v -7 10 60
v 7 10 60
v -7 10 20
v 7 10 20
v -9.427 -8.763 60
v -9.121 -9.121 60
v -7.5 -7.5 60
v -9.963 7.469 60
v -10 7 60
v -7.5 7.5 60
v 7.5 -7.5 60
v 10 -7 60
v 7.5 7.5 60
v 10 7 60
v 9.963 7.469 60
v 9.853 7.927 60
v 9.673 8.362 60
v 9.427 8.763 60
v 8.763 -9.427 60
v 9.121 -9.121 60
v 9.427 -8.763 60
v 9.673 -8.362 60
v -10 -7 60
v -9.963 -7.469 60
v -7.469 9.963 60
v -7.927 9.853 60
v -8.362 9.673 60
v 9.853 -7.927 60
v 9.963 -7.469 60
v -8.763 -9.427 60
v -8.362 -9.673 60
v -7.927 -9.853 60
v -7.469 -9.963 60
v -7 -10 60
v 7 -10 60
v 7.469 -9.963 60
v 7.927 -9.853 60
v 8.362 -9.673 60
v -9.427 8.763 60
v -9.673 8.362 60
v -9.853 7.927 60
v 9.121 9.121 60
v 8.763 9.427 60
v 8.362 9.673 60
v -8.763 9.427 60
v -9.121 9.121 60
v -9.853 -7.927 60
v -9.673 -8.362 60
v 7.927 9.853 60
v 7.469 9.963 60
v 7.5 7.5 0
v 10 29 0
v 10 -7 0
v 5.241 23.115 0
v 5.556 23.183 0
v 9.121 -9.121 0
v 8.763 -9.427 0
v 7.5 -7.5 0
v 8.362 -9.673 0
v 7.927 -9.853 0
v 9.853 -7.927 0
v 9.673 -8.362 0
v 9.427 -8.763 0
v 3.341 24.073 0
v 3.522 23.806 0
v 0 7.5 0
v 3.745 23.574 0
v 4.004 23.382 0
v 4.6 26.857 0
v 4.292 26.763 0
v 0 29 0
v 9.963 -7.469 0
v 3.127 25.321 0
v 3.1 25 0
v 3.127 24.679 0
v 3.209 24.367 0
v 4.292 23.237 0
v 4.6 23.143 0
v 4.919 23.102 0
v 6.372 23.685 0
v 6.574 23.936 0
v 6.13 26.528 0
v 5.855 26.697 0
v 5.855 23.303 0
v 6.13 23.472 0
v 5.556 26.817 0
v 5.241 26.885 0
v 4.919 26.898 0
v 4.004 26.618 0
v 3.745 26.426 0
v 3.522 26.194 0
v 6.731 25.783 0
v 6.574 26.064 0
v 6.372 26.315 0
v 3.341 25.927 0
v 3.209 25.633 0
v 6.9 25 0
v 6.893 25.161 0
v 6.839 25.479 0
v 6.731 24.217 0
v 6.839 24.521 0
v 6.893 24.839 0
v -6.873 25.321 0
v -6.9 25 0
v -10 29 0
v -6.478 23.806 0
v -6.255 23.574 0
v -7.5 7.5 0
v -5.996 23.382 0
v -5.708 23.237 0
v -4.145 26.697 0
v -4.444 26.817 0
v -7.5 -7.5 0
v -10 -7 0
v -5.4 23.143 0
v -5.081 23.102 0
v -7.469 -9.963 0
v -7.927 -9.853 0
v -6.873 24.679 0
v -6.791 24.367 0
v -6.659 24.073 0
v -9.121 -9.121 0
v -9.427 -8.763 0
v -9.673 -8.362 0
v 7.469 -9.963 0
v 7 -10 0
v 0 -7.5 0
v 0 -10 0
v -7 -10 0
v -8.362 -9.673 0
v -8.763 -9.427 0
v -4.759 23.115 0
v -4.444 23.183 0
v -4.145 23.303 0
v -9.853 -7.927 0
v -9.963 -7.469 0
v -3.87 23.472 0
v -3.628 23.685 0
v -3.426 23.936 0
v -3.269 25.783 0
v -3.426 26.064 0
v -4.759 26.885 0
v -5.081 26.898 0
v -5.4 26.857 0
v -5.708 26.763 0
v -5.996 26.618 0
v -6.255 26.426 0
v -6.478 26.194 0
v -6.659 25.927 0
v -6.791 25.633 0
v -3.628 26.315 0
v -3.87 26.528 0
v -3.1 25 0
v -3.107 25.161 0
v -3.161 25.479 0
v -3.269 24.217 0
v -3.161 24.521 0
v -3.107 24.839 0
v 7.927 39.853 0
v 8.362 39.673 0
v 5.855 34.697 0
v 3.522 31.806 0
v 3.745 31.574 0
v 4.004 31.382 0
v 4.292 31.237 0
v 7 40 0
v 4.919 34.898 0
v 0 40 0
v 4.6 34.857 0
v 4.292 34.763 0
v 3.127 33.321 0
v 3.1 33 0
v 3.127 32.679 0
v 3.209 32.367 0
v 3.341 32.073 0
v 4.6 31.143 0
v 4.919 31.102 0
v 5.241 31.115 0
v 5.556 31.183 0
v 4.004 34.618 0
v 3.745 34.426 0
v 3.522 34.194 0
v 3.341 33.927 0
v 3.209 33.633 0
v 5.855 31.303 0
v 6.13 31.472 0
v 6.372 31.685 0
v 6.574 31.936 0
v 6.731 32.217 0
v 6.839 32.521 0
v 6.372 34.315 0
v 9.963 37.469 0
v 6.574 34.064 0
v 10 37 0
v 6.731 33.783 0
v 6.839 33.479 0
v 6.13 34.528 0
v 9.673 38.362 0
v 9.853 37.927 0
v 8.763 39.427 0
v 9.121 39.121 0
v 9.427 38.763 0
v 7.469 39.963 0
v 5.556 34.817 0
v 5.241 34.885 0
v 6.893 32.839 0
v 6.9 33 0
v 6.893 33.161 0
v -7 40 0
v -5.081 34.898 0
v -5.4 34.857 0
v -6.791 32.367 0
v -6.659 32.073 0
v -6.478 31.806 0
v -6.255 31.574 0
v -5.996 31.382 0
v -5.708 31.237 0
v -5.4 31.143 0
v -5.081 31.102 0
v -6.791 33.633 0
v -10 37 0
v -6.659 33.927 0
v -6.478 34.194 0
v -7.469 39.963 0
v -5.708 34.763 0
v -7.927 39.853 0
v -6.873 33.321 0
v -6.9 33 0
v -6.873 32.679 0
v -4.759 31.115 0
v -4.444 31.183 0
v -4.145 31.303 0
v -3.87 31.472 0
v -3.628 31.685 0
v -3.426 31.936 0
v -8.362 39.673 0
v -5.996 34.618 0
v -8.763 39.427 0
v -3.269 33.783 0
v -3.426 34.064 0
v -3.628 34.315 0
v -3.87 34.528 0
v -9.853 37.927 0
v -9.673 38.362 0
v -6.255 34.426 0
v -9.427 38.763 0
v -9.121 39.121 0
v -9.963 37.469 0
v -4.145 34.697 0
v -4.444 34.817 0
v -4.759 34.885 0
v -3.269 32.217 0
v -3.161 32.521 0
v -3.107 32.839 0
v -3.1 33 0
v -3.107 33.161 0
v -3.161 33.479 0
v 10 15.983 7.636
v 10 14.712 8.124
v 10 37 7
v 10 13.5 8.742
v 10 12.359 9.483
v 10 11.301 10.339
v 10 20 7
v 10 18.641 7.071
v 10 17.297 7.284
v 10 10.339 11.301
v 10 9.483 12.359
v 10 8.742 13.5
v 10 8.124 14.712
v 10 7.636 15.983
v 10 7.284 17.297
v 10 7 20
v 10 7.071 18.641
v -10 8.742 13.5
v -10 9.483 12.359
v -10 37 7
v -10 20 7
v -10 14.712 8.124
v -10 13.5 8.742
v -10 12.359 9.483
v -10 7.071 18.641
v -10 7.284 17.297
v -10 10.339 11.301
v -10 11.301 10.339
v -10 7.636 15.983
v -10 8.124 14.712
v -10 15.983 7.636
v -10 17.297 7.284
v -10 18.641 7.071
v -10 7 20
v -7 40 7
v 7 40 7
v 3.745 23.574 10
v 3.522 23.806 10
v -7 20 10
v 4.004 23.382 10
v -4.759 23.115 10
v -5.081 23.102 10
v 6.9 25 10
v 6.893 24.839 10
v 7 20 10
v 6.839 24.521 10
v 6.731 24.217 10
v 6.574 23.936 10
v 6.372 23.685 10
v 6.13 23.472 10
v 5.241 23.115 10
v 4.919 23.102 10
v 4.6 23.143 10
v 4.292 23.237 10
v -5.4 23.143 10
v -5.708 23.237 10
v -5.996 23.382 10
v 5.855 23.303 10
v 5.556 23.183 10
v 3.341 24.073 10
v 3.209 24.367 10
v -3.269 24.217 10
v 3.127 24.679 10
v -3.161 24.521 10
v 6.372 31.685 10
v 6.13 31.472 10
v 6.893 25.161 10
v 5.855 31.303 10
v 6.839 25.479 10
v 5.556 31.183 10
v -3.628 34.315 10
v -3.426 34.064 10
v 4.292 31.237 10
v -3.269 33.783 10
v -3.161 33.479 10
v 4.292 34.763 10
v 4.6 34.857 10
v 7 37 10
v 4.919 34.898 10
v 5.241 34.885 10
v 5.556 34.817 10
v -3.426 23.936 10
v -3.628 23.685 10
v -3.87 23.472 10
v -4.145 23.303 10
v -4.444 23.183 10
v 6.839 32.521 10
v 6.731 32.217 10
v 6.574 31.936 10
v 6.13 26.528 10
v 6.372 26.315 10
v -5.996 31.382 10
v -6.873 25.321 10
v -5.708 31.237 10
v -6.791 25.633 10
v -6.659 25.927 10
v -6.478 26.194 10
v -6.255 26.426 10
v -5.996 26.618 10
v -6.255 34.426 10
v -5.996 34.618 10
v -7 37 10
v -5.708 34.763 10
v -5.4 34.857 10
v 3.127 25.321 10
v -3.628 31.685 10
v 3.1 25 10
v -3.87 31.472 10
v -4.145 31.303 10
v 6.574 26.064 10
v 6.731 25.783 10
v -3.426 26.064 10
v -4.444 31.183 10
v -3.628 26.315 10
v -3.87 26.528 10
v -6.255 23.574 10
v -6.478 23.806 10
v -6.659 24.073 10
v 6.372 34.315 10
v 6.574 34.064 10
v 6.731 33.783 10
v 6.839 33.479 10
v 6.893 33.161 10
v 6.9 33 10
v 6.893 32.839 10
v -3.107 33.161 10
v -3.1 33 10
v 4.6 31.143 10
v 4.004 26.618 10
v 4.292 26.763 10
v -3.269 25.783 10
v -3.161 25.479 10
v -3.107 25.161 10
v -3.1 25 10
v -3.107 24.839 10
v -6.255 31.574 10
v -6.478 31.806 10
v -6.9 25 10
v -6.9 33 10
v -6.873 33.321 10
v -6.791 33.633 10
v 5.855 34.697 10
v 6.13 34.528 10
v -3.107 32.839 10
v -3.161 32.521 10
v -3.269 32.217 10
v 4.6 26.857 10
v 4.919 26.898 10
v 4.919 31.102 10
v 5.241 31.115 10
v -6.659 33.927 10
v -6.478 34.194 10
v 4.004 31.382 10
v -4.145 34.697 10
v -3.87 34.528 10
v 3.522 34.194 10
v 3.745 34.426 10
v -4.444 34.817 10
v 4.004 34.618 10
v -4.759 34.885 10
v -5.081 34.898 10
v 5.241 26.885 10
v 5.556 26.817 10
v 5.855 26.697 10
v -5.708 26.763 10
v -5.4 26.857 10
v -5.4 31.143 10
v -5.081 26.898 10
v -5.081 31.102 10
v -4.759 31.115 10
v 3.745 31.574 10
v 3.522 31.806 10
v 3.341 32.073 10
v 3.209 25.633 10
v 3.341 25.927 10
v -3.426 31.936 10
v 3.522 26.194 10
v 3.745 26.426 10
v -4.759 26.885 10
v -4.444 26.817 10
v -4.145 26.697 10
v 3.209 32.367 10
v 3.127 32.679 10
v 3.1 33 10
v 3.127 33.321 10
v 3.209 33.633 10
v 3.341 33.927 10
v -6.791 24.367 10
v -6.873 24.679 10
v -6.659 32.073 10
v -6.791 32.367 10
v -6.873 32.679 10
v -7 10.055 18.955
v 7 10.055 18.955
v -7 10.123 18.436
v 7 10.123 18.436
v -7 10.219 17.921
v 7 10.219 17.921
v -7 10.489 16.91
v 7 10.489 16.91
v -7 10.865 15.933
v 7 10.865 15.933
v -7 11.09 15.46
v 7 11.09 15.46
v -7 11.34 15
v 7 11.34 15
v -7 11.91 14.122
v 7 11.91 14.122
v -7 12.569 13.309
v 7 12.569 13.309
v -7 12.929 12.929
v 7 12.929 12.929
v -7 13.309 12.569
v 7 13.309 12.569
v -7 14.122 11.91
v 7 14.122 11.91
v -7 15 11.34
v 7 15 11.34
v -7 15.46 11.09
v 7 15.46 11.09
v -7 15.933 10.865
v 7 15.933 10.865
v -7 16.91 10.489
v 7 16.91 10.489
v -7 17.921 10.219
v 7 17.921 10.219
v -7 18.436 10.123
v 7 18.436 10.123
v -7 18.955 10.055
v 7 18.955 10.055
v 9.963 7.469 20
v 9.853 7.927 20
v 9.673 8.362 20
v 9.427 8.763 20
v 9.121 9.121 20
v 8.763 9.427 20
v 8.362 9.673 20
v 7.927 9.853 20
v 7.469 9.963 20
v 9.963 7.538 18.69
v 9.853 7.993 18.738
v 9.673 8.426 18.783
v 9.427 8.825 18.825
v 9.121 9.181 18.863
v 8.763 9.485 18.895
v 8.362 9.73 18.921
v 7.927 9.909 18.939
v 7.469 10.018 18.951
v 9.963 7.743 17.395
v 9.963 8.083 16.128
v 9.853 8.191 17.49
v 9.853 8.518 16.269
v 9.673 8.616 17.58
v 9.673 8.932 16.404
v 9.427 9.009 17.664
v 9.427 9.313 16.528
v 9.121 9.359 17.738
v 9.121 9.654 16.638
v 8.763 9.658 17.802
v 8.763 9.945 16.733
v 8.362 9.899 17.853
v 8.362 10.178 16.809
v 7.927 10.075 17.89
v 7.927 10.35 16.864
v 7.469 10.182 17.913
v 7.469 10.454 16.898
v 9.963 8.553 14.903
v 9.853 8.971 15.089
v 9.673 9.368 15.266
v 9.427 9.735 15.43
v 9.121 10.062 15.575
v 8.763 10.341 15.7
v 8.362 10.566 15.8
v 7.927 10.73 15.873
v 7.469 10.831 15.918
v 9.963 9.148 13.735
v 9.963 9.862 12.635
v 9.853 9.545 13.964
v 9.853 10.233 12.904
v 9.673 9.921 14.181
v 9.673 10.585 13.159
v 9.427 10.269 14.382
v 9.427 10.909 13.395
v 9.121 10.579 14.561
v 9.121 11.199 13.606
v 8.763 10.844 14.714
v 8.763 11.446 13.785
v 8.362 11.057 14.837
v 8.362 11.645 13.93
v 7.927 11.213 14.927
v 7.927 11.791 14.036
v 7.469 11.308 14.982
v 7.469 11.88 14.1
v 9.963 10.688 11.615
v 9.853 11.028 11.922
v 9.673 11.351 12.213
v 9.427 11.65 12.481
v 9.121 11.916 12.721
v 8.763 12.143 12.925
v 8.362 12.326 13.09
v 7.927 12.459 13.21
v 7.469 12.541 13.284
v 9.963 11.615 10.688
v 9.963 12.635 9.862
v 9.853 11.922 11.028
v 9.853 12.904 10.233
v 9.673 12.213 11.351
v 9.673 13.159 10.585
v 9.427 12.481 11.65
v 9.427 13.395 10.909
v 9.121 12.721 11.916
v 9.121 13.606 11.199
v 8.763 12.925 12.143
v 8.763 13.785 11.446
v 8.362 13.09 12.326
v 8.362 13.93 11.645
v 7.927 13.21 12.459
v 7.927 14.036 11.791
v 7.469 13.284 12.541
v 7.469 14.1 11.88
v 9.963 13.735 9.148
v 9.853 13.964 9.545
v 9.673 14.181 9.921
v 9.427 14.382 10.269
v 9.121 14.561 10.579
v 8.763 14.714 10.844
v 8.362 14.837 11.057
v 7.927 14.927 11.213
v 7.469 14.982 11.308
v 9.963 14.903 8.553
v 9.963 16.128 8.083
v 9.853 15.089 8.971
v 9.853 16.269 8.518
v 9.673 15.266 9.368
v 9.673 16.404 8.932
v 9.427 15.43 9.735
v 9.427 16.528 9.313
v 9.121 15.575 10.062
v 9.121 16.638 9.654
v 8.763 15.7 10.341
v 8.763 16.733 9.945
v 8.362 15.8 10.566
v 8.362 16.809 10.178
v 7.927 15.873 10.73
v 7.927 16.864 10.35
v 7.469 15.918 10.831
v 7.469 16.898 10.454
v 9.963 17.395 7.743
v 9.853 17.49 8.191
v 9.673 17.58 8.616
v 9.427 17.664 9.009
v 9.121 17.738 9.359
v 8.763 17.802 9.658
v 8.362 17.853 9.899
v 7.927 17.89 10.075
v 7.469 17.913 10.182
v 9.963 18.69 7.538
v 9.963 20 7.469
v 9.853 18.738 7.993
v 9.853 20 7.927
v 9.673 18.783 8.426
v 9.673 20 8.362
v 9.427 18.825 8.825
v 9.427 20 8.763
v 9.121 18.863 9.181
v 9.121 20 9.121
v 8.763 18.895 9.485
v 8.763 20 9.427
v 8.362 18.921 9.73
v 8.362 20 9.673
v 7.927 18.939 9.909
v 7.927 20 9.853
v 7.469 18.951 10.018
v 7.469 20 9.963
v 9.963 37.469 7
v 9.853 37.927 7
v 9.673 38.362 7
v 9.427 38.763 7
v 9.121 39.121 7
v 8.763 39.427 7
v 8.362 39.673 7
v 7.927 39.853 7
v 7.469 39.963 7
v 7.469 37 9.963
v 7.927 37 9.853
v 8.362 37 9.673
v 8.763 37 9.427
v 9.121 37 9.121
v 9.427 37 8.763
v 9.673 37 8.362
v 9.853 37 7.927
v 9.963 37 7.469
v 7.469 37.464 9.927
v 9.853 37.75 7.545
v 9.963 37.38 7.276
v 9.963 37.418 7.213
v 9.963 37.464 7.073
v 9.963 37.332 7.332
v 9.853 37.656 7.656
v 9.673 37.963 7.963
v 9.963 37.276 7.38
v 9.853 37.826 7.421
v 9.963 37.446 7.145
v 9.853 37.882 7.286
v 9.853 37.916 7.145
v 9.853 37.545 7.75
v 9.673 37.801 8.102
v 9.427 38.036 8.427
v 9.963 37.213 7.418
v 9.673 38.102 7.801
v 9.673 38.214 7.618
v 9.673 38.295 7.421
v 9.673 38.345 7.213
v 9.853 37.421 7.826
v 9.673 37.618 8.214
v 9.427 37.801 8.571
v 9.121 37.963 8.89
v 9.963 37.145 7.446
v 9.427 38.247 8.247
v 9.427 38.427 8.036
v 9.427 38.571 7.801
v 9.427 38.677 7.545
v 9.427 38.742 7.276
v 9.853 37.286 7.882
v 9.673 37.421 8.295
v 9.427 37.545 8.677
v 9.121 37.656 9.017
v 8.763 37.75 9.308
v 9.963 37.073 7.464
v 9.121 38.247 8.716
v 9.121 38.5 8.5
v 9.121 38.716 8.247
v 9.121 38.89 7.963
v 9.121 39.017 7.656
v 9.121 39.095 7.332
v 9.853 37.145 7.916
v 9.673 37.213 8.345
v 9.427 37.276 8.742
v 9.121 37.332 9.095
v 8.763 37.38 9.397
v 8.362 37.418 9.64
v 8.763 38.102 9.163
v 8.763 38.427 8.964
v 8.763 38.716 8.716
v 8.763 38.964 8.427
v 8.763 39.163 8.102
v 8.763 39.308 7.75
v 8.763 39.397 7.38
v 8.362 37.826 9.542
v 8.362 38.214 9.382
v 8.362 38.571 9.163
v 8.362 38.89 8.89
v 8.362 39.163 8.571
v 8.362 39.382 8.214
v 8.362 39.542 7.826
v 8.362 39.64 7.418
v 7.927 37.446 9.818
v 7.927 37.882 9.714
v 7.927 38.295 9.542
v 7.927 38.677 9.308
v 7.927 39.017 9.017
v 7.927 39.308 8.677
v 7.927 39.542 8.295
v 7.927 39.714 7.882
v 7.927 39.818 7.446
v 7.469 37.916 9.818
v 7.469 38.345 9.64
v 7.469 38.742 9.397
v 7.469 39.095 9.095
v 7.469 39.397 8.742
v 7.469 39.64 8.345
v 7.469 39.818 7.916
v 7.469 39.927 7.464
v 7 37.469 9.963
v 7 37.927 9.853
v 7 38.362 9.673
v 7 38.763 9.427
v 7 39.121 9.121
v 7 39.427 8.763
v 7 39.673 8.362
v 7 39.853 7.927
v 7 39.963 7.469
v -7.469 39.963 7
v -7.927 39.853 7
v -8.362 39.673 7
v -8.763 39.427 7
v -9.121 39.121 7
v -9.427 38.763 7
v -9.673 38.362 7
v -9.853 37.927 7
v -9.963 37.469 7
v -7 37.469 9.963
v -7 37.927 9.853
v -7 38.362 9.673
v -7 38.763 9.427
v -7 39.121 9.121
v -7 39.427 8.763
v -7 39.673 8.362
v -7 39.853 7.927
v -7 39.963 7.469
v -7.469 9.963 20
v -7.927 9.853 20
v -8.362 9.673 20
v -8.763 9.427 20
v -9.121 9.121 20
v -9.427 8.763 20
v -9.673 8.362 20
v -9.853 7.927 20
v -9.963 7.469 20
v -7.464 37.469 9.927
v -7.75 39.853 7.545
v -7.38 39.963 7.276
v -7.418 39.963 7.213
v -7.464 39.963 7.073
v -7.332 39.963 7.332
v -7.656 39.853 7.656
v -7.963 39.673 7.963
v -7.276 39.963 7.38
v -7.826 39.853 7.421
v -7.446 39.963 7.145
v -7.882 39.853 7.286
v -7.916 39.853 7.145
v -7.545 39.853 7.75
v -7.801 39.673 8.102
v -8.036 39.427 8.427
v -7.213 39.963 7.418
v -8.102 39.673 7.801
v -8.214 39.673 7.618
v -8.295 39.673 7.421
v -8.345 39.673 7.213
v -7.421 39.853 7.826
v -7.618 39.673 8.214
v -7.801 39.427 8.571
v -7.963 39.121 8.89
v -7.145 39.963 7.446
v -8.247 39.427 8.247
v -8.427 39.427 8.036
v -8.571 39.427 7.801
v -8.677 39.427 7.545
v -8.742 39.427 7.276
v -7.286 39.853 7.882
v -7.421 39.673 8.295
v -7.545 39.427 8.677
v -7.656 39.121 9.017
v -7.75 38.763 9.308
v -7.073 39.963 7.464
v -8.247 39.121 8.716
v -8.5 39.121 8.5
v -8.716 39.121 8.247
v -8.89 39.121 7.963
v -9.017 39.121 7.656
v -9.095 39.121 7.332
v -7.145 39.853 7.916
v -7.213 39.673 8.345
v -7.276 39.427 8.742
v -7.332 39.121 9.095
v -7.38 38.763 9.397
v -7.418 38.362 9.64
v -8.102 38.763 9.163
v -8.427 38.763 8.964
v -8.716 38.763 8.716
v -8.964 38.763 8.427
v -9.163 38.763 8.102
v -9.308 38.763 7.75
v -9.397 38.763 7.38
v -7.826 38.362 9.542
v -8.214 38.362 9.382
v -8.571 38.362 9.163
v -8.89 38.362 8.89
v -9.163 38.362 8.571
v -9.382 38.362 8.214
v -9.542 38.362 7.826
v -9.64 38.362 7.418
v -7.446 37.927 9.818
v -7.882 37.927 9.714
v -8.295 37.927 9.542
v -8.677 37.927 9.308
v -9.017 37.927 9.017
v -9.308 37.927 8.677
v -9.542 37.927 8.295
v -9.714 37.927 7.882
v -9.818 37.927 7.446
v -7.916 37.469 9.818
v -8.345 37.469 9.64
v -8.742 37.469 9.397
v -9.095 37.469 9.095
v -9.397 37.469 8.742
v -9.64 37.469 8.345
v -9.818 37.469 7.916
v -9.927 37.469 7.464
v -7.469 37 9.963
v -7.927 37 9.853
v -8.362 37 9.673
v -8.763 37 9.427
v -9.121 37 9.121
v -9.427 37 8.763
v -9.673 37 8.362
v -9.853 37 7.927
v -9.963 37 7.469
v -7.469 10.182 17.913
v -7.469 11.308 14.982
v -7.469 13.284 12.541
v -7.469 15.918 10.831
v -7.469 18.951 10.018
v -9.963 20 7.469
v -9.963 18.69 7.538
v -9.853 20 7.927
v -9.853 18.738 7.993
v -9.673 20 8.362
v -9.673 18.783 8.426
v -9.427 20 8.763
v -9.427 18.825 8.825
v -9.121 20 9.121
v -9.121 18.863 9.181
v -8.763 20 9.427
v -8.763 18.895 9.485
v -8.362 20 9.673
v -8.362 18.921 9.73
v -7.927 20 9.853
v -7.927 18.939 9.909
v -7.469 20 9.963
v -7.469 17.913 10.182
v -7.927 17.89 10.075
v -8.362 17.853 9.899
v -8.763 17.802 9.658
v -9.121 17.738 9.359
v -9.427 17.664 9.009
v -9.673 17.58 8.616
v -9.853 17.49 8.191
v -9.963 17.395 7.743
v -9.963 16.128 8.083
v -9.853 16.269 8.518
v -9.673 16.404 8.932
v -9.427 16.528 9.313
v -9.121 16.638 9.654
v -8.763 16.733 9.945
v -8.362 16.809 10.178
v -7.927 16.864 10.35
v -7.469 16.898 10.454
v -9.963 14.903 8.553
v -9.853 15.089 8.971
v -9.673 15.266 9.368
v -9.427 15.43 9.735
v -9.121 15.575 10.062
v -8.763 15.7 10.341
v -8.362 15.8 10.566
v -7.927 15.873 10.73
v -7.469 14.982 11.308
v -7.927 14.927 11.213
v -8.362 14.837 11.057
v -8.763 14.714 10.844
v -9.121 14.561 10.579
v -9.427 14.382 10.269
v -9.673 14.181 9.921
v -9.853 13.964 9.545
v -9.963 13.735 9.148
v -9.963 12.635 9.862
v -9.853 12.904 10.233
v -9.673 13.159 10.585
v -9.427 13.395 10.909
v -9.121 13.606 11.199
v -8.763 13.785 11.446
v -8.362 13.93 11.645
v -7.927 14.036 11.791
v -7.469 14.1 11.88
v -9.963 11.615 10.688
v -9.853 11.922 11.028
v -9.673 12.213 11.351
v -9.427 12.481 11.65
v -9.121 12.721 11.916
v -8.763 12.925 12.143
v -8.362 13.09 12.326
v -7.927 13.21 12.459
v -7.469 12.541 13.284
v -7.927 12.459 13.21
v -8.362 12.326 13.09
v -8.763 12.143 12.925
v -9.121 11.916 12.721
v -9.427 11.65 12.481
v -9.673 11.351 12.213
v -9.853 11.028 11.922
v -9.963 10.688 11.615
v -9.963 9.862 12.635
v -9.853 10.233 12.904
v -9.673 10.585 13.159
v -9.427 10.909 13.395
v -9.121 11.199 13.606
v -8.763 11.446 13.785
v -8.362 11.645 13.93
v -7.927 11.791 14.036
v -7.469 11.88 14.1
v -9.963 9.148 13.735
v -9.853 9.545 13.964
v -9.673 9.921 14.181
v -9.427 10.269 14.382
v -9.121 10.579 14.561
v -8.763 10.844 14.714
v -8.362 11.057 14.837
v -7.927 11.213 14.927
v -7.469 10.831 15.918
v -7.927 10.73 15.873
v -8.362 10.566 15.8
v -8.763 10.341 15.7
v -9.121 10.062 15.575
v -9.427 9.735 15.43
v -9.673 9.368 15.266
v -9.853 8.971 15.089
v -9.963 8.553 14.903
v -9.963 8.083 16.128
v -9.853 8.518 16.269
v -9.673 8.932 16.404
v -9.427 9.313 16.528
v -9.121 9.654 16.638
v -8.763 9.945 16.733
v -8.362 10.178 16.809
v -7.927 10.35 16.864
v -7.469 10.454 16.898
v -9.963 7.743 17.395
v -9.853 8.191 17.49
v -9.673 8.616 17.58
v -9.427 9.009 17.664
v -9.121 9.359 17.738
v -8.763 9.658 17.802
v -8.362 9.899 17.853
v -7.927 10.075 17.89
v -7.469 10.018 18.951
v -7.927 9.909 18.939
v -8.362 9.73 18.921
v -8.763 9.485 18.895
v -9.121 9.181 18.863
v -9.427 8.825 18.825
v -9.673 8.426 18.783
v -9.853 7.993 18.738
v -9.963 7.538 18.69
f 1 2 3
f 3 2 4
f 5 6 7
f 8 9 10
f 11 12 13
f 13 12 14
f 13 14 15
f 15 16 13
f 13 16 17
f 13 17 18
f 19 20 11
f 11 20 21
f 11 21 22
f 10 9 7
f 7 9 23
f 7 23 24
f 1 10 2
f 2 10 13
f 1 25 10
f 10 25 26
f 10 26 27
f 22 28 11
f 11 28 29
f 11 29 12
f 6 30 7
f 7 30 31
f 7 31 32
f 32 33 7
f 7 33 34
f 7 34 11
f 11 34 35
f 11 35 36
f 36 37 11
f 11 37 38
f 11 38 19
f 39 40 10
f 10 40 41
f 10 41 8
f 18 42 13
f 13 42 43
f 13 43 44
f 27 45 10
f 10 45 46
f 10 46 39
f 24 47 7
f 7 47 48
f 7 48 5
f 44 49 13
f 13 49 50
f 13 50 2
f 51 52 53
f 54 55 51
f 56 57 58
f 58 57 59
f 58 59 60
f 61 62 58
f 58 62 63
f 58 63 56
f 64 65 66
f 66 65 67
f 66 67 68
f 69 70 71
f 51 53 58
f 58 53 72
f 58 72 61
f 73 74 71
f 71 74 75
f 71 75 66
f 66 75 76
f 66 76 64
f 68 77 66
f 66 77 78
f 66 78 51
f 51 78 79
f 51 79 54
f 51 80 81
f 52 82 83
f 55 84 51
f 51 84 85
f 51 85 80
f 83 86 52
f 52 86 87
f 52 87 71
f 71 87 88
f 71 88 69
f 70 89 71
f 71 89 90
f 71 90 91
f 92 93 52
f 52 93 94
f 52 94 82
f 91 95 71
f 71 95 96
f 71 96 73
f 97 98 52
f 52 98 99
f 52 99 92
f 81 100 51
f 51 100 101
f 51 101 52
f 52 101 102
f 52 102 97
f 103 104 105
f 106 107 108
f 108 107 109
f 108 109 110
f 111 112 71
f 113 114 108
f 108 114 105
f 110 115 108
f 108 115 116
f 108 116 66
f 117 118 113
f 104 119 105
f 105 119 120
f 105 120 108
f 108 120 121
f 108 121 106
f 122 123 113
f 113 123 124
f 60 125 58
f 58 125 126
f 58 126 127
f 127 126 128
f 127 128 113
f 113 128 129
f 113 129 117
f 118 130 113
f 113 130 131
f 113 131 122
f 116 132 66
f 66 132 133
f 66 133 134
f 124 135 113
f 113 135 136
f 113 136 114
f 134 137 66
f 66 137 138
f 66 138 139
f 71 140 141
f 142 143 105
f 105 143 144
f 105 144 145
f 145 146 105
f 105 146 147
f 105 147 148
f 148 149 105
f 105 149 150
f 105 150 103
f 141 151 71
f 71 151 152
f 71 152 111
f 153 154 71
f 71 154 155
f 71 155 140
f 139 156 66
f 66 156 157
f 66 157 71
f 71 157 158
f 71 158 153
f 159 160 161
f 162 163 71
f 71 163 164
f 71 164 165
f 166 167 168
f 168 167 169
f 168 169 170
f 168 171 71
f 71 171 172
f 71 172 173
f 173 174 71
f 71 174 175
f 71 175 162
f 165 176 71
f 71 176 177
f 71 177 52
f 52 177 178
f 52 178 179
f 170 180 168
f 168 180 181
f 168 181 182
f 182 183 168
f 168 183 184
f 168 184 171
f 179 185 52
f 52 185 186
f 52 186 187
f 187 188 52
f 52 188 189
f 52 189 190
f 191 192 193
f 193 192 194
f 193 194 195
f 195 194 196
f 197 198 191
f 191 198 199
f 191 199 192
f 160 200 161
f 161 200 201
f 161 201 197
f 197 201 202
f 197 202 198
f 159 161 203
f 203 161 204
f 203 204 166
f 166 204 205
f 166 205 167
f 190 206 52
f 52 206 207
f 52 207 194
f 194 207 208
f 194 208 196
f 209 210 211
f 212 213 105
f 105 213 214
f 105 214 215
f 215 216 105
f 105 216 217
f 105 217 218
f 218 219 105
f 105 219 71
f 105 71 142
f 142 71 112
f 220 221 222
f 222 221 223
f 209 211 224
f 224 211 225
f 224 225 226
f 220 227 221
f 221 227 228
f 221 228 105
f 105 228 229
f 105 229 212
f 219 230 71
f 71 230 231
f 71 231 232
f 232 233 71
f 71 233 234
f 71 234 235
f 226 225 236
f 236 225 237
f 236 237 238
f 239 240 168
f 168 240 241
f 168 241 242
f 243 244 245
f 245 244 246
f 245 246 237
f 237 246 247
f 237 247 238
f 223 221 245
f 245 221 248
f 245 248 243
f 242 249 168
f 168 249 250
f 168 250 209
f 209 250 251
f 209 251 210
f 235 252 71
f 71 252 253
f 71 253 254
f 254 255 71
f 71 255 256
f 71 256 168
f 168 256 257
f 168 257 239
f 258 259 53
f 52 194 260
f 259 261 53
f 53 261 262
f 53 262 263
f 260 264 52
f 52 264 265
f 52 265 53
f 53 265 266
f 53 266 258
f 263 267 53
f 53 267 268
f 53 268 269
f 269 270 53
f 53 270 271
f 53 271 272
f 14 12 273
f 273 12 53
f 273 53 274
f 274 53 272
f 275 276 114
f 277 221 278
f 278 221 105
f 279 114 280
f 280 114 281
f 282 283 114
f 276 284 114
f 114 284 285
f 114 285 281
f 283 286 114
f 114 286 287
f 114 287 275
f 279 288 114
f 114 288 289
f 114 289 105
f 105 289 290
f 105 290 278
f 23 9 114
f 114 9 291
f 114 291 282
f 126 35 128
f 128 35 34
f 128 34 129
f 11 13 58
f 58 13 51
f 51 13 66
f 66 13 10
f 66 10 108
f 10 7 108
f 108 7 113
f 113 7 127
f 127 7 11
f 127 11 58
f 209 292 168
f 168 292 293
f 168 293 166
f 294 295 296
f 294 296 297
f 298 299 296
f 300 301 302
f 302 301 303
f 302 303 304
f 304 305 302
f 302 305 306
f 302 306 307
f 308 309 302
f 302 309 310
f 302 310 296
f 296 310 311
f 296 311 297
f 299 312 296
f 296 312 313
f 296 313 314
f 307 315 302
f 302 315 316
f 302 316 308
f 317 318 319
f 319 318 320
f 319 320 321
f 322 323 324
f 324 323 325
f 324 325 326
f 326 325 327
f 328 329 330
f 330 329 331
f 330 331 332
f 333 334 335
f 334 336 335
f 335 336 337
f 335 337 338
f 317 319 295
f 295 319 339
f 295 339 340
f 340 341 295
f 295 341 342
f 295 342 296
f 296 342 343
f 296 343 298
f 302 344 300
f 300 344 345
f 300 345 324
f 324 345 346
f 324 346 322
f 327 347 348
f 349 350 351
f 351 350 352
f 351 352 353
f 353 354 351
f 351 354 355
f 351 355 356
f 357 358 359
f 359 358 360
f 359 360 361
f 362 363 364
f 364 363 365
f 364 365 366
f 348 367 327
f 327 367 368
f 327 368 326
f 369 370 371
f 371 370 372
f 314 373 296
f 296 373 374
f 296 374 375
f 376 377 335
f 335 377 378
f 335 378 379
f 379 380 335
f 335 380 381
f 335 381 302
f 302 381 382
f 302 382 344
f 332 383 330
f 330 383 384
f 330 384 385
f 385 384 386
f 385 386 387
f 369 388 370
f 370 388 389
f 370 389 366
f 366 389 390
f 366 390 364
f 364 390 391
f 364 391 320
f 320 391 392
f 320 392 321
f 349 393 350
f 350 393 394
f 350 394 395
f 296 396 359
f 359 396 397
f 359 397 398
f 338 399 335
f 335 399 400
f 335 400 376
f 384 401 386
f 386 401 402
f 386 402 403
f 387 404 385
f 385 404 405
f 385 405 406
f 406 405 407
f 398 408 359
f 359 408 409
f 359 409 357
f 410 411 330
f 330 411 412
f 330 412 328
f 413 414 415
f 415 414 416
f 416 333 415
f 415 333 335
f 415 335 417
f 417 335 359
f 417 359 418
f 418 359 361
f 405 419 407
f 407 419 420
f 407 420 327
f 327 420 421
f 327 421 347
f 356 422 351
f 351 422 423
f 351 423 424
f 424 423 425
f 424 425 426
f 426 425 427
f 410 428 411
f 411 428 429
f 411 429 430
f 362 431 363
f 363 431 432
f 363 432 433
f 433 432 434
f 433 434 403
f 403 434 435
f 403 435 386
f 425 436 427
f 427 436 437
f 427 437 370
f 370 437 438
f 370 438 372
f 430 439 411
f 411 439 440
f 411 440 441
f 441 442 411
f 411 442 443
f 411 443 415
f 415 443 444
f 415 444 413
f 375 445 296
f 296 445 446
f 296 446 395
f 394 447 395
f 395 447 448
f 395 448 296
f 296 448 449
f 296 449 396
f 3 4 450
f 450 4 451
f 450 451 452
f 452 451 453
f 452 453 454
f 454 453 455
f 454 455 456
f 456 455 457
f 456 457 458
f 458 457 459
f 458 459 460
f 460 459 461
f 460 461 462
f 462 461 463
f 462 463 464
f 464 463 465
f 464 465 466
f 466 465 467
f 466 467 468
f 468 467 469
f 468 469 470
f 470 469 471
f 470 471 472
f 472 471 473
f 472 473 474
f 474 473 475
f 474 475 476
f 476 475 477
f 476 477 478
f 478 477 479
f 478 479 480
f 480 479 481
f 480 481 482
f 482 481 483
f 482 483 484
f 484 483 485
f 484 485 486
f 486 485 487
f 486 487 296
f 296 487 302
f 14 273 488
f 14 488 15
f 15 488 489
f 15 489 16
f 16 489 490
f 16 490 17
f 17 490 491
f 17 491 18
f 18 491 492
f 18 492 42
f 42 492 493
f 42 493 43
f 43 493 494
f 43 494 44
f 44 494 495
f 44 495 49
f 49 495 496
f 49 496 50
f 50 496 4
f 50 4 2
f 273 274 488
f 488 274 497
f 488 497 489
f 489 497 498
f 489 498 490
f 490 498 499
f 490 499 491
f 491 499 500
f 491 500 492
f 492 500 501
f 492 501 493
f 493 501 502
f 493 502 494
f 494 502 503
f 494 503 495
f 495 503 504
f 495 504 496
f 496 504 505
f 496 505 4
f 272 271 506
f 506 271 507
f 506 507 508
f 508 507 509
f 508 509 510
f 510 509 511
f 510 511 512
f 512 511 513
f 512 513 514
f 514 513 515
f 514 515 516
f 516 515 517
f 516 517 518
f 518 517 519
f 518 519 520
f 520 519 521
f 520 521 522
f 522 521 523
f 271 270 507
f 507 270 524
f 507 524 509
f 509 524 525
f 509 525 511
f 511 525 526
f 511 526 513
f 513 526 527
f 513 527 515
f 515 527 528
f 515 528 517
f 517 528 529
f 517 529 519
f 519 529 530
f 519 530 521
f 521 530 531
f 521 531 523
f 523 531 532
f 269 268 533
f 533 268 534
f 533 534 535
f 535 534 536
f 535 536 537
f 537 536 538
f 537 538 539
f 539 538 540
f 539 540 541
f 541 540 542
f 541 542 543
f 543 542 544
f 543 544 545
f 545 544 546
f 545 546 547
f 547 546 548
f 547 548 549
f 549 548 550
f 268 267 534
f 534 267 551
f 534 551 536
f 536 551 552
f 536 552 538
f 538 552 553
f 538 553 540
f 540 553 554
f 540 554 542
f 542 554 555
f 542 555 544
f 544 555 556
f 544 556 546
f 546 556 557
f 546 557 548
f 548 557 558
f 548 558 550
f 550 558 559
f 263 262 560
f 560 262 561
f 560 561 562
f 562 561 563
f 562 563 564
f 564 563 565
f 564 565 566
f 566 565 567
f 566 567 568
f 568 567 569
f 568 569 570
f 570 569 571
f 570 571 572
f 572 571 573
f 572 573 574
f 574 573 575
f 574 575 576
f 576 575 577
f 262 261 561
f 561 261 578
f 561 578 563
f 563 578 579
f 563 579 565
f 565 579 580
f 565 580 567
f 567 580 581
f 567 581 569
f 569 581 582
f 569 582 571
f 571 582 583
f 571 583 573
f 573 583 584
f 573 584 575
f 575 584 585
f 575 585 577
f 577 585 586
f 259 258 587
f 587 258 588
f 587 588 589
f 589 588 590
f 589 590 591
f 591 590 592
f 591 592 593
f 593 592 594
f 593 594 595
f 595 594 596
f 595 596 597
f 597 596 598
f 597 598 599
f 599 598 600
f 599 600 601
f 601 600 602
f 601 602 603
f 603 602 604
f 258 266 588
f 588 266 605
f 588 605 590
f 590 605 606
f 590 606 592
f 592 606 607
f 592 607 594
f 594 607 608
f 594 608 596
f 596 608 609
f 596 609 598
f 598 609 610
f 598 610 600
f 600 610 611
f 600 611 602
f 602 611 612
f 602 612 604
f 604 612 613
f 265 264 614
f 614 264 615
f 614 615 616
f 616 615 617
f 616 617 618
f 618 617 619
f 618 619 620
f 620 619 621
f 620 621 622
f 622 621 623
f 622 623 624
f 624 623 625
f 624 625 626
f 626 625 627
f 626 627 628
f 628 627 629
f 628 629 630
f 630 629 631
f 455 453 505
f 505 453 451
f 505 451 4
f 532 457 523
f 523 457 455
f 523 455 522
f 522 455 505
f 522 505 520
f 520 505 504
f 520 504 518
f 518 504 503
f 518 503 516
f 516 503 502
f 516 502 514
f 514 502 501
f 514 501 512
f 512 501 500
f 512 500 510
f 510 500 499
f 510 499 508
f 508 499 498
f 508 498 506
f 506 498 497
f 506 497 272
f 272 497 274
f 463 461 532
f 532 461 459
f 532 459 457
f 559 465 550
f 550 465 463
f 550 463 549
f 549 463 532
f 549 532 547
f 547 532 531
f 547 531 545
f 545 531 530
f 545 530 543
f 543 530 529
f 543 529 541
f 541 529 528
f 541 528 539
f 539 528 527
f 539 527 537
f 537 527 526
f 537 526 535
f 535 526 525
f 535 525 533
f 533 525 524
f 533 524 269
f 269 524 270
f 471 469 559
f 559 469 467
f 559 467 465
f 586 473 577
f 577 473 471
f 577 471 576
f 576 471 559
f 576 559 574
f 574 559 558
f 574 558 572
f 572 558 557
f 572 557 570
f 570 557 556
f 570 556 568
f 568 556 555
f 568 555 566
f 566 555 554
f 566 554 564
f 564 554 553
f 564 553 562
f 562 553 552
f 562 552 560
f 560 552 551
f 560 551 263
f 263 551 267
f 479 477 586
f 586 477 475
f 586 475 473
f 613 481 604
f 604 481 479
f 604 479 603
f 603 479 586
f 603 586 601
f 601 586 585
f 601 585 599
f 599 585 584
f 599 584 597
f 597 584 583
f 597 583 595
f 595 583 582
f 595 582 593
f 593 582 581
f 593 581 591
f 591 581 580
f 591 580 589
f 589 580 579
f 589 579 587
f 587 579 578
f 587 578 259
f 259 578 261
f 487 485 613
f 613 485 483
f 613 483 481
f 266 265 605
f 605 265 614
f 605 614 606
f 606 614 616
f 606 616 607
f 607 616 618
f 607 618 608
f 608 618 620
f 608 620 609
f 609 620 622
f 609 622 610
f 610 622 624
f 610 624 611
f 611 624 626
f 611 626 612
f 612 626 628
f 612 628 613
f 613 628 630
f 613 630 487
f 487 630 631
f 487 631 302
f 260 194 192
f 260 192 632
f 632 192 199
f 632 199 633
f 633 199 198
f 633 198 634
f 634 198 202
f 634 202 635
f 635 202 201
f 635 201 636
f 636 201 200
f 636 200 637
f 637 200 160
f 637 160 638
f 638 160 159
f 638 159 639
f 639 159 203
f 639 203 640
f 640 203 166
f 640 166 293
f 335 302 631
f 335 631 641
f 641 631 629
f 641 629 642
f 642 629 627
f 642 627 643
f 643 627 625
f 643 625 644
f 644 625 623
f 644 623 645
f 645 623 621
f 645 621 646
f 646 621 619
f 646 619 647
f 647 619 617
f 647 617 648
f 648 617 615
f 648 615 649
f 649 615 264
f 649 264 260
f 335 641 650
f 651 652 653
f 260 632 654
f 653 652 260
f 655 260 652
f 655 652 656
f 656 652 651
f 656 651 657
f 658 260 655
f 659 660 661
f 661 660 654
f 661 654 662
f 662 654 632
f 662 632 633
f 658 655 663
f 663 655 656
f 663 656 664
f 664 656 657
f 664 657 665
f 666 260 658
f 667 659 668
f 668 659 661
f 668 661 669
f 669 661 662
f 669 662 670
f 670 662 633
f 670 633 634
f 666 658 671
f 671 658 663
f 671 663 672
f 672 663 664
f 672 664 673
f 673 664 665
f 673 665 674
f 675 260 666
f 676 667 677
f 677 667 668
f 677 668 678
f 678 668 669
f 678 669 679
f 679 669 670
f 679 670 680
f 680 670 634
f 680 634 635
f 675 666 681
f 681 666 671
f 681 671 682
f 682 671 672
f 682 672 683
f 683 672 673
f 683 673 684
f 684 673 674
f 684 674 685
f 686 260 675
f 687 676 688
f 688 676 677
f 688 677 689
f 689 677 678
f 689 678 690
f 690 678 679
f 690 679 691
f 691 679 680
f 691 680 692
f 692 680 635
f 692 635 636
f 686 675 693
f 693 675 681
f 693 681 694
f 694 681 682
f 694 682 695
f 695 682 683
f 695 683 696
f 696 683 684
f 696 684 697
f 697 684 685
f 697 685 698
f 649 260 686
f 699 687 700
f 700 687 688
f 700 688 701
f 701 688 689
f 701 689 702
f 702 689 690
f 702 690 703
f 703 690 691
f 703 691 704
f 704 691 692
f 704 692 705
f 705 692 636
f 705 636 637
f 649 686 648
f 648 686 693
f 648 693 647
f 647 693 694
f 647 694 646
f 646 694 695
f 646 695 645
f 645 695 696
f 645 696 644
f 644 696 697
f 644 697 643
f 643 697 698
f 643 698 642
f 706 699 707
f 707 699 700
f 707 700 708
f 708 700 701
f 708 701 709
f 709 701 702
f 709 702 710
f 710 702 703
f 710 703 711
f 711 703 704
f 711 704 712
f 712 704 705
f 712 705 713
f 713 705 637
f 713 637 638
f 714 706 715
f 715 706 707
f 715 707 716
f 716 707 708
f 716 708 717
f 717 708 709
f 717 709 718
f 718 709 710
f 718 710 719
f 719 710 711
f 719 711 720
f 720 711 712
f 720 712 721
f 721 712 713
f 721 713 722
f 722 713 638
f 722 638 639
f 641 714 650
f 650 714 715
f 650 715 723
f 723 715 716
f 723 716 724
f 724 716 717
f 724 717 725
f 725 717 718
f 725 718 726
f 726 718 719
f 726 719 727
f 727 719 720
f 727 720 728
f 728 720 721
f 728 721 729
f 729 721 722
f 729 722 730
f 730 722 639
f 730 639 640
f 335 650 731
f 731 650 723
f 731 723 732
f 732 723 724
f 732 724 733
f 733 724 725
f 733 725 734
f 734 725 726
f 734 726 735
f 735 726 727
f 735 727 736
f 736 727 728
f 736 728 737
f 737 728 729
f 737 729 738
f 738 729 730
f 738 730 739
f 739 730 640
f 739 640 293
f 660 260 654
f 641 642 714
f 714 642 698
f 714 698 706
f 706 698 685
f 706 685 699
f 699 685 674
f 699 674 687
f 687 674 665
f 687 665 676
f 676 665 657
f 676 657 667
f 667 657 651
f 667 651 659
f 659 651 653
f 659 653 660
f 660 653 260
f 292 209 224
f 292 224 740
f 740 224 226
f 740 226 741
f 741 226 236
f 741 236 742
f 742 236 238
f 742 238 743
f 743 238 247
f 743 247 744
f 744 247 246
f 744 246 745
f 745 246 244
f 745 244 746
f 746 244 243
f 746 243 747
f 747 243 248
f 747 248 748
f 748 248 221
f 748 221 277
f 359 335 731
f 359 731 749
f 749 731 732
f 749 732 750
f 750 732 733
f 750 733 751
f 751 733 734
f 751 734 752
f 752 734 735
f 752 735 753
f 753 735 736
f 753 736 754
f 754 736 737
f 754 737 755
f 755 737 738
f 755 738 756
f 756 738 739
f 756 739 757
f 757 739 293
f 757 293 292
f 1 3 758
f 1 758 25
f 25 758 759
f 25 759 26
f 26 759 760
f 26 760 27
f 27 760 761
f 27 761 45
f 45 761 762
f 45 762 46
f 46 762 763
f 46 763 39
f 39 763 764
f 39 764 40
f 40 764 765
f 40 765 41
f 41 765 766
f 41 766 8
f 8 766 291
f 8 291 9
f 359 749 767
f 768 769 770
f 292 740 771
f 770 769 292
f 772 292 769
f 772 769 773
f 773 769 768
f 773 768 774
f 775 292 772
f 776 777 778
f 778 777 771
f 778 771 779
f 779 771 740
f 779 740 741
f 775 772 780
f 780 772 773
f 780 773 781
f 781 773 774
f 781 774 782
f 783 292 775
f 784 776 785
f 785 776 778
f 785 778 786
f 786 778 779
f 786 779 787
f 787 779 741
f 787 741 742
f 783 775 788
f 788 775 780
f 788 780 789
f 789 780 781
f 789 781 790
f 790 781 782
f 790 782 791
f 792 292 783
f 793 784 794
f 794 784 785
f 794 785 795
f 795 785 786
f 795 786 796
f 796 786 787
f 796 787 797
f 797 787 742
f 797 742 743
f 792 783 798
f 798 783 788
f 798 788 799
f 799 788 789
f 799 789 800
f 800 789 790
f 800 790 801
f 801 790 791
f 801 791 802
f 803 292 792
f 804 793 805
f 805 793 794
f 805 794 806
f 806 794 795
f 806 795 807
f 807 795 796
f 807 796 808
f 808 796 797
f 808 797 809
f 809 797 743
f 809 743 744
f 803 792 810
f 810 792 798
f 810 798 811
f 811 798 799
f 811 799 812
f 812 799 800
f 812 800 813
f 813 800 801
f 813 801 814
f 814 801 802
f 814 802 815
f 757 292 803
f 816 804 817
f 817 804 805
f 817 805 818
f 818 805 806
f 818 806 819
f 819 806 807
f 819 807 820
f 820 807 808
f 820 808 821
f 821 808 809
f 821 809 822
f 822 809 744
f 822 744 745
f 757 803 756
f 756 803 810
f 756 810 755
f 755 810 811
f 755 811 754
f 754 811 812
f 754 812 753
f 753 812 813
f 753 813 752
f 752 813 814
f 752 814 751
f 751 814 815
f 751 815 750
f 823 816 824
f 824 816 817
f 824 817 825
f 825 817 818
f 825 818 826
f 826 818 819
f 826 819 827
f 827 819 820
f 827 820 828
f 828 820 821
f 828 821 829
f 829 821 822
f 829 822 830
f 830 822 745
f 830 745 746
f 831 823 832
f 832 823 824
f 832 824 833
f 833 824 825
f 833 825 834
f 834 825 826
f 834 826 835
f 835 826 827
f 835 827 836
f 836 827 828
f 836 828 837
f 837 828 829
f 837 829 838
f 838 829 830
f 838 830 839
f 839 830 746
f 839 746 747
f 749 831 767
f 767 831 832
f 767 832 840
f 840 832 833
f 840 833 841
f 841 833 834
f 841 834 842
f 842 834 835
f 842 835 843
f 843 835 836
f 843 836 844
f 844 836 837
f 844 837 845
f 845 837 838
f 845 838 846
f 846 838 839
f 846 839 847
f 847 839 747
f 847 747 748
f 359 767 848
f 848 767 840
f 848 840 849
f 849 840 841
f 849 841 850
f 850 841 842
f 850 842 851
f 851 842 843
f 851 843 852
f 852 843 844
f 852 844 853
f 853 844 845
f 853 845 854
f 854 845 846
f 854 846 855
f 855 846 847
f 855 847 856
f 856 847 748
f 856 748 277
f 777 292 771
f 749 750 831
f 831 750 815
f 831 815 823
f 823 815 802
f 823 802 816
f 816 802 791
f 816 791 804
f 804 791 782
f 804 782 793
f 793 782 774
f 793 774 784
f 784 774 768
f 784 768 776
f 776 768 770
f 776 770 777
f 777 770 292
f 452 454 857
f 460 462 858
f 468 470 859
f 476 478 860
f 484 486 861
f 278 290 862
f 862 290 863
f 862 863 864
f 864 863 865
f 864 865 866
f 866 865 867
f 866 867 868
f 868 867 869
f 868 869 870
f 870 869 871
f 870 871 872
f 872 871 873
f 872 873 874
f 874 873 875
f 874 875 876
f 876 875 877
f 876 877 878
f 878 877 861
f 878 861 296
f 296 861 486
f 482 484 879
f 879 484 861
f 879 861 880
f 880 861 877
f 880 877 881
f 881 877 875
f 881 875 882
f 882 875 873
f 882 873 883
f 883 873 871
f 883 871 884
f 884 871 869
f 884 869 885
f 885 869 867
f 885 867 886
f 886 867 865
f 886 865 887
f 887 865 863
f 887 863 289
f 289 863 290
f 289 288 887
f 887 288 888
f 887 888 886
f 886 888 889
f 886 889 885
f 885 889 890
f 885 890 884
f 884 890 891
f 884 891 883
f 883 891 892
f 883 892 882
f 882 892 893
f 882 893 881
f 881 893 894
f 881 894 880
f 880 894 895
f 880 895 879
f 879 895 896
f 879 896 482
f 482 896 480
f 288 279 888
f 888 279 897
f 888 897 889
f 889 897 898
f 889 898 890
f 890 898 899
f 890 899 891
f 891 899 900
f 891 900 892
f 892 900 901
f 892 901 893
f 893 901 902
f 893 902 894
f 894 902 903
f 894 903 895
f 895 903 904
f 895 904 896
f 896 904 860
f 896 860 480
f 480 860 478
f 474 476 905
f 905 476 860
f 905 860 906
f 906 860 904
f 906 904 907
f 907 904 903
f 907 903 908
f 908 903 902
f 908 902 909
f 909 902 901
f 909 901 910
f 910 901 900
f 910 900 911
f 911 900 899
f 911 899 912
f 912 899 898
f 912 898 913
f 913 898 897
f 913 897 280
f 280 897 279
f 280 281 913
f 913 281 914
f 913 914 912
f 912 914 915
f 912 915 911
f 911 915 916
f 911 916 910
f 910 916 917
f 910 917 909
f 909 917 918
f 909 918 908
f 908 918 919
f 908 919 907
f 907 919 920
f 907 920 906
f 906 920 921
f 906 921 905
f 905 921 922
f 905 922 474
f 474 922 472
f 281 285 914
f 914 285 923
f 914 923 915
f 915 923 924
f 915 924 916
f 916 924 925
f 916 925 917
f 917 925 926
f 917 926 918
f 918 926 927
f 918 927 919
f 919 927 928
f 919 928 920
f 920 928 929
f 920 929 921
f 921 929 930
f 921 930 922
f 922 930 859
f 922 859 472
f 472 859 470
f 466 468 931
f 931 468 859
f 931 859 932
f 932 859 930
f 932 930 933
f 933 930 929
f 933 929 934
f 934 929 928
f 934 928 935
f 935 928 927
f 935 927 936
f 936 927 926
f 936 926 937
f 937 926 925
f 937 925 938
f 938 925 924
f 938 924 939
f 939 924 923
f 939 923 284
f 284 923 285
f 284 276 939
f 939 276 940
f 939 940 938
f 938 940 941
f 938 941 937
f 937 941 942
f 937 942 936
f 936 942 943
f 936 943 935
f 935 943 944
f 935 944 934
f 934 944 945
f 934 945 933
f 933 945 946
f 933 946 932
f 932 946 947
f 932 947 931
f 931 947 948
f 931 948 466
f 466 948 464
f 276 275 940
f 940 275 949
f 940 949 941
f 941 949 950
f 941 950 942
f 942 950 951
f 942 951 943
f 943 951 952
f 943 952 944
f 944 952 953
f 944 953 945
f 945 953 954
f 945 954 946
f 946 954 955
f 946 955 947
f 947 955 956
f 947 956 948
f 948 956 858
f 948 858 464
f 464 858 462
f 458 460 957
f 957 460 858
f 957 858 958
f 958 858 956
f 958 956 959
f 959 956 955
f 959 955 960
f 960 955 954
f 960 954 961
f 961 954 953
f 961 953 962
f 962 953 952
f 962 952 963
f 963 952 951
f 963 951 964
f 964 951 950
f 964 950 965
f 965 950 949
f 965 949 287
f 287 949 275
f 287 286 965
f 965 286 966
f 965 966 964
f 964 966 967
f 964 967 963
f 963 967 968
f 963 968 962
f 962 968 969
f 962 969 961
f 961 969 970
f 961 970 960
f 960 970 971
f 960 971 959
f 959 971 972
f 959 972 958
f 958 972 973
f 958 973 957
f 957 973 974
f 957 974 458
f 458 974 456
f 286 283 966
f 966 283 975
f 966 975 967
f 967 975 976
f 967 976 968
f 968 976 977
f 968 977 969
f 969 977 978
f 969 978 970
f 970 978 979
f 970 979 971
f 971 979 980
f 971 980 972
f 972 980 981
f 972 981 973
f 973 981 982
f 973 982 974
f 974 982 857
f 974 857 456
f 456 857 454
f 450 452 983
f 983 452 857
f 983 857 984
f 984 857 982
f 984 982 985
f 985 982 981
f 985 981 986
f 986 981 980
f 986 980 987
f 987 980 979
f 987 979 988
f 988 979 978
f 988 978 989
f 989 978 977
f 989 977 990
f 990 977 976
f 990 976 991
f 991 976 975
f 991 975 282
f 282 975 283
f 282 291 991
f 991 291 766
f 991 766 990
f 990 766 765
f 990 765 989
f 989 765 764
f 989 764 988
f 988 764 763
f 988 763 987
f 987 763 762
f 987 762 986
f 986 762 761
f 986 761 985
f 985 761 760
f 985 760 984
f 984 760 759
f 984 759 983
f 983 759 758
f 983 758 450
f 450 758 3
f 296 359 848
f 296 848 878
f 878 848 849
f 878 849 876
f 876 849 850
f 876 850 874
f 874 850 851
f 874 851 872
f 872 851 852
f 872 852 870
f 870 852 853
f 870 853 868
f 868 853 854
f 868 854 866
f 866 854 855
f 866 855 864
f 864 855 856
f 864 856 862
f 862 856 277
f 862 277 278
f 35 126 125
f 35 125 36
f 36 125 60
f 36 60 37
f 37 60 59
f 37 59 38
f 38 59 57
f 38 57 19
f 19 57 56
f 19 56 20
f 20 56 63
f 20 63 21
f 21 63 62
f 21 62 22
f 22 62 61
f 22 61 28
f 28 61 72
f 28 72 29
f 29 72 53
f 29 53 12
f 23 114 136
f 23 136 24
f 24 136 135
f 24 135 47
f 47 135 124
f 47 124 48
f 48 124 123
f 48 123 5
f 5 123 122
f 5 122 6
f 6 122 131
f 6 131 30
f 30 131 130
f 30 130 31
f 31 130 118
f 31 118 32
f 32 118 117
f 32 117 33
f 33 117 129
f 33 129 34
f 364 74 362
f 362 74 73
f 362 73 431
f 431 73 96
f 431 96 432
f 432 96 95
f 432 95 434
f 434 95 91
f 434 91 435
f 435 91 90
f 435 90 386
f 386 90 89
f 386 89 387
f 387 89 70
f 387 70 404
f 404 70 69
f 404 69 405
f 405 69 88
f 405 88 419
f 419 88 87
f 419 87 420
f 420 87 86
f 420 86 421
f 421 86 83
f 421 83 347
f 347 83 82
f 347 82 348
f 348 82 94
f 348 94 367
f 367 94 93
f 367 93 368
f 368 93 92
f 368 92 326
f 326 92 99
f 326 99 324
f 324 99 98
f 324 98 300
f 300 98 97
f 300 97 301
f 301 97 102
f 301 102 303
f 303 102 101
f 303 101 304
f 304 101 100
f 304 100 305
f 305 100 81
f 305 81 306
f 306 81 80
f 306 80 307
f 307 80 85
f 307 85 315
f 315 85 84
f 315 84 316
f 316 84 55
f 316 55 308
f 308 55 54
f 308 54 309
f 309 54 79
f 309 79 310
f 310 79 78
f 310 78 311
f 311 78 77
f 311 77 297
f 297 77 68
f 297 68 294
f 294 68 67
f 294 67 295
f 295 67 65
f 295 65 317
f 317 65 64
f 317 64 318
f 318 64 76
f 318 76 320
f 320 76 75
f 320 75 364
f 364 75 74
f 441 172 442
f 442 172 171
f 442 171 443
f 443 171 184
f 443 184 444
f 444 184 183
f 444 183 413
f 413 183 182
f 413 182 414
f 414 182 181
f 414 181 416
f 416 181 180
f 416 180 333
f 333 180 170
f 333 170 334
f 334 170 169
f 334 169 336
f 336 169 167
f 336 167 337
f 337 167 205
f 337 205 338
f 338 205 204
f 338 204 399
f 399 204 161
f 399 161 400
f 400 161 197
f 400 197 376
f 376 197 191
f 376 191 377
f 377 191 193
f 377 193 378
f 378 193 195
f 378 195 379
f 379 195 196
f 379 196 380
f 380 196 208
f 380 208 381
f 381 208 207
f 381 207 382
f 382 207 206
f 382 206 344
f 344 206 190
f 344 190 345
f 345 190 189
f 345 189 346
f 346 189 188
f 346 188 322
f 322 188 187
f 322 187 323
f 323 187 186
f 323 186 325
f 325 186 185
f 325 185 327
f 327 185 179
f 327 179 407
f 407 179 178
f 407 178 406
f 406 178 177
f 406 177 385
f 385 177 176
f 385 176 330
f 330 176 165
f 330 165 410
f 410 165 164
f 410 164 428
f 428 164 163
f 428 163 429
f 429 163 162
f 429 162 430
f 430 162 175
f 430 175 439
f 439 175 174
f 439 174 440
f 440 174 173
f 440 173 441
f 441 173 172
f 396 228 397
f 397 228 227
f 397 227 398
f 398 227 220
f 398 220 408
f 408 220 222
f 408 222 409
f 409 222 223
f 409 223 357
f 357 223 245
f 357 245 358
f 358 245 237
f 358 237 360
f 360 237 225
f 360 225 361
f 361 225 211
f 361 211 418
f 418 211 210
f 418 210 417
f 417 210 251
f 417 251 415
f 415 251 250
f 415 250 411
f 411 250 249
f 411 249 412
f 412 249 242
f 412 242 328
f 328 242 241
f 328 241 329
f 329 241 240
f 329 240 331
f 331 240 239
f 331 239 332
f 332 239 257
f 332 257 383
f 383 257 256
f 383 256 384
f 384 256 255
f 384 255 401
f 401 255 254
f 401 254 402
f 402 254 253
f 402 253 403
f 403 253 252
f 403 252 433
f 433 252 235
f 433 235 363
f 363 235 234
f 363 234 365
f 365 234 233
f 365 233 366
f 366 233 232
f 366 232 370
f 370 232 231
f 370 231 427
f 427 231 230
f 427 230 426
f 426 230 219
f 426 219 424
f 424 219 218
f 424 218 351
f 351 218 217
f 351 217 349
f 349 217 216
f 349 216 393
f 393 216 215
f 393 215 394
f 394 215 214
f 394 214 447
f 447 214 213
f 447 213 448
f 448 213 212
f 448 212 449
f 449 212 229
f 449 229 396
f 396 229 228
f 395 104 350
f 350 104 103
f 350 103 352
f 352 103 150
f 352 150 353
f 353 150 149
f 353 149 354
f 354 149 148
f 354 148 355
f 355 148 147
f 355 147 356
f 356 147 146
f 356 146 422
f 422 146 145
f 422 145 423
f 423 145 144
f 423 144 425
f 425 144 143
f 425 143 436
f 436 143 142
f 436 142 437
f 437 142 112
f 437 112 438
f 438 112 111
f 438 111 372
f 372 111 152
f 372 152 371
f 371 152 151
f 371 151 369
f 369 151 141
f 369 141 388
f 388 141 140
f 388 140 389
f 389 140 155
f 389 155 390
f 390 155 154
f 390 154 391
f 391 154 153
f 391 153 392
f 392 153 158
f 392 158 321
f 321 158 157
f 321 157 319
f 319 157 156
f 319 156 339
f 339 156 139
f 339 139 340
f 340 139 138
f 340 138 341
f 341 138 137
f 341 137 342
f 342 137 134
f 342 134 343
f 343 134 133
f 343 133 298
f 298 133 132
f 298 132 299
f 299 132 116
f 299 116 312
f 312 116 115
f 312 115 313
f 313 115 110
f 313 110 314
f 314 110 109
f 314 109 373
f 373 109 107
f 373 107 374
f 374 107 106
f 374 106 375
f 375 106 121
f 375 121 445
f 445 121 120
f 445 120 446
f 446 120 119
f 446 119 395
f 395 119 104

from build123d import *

# Parameters (mm, degrees)
SKETCH_4_W          = 20
SKETCH_4_H          = 20
SKETCH_4_W_2        = 15
SKETCH_4_H_2        = 15
EXTRUDE_3_DEPTH     = 60
SKETCH_5_W          = 20
SKETCH_5_H          = 30
EXTRUDE_4_DEPTH     = 10
FILLET_1_R          = 10
FILLET_2_R          = 3
FILLET_3_R          = 3
SKETCH_6_R          = 1.9
CUT_EXTRUDE_1_DEPTH = 10


with BuildPart() as part:
    # ｽｹｯﾁ4 → ﾎﾞｽ - 押し出し3 (new body)
    with BuildSketch(Plane.XY):
        Rectangle(SKETCH_4_W, SKETCH_4_H)
        Rectangle(SKETCH_4_W_2, SKETCH_4_H_2, mode=Mode.SUBTRACT)
    extrude(amount=EXTRUDE_3_DEPTH)

    # ｽｹｯﾁ5 → ﾎﾞｽ - 押し出し4 (add)
    with BuildSketch(Plane.XY):
        with Locations((0, 25)):
            Rectangle(SKETCH_5_W, SKETCH_5_H)
    extrude(amount=EXTRUDE_4_DEPTH)

    # ﾌｨﾚｯﾄ1
    fillet_1_edges = [part.edges().sort_by_distance(p)[0] for p in [
        (0, 10, 10),
    ]]
    fillet(fillet_1_edges, radius=FILLET_1_R)

    # ﾌｨﾚｯﾄ2
    fillet_2_edges = [part.edges().sort_by_distance(p)[0] for p in [
        (10, 40, 5),
        (-10, 40, 5),
        (0, 40, 10),
        (-10, 30, 10),
        (10, 30, 10),
        (10, 12.928932188, 12.928932188),
        (-10, 12.928932188, 12.928932188),
        (-10, 10, 40),
        (10, 10, 40),
    ]]
    fillet(fillet_2_edges, radius=FILLET_2_R)

    # ﾌｨﾚｯﾄ3
    fillet_3_edges = [part.edges().sort_by_distance(p)[0] for p in [
        (10, -10, 30),
        (-10, -10, 30),
    ]]
    fillet(fillet_3_edges, radius=FILLET_3_R)

    # ｽｹｯﾁ6 → ｶｯﾄ - 押し出し1 (cut)
    with BuildSketch(Plane.XY):
        with Locations((5, 25)):
            Circle(SKETCH_6_R)
        with Locations((5, 33)):
            Circle(SKETCH_6_R)
        with Locations((-5, 33)):
            Circle(SKETCH_6_R)
        with Locations((-5, 25)):
            Circle(SKETCH_6_R)
    extrude(amount=CUT_EXTRUDE_1_DEPTH, mode=Mode.SUBTRACT)


solid = part.part
